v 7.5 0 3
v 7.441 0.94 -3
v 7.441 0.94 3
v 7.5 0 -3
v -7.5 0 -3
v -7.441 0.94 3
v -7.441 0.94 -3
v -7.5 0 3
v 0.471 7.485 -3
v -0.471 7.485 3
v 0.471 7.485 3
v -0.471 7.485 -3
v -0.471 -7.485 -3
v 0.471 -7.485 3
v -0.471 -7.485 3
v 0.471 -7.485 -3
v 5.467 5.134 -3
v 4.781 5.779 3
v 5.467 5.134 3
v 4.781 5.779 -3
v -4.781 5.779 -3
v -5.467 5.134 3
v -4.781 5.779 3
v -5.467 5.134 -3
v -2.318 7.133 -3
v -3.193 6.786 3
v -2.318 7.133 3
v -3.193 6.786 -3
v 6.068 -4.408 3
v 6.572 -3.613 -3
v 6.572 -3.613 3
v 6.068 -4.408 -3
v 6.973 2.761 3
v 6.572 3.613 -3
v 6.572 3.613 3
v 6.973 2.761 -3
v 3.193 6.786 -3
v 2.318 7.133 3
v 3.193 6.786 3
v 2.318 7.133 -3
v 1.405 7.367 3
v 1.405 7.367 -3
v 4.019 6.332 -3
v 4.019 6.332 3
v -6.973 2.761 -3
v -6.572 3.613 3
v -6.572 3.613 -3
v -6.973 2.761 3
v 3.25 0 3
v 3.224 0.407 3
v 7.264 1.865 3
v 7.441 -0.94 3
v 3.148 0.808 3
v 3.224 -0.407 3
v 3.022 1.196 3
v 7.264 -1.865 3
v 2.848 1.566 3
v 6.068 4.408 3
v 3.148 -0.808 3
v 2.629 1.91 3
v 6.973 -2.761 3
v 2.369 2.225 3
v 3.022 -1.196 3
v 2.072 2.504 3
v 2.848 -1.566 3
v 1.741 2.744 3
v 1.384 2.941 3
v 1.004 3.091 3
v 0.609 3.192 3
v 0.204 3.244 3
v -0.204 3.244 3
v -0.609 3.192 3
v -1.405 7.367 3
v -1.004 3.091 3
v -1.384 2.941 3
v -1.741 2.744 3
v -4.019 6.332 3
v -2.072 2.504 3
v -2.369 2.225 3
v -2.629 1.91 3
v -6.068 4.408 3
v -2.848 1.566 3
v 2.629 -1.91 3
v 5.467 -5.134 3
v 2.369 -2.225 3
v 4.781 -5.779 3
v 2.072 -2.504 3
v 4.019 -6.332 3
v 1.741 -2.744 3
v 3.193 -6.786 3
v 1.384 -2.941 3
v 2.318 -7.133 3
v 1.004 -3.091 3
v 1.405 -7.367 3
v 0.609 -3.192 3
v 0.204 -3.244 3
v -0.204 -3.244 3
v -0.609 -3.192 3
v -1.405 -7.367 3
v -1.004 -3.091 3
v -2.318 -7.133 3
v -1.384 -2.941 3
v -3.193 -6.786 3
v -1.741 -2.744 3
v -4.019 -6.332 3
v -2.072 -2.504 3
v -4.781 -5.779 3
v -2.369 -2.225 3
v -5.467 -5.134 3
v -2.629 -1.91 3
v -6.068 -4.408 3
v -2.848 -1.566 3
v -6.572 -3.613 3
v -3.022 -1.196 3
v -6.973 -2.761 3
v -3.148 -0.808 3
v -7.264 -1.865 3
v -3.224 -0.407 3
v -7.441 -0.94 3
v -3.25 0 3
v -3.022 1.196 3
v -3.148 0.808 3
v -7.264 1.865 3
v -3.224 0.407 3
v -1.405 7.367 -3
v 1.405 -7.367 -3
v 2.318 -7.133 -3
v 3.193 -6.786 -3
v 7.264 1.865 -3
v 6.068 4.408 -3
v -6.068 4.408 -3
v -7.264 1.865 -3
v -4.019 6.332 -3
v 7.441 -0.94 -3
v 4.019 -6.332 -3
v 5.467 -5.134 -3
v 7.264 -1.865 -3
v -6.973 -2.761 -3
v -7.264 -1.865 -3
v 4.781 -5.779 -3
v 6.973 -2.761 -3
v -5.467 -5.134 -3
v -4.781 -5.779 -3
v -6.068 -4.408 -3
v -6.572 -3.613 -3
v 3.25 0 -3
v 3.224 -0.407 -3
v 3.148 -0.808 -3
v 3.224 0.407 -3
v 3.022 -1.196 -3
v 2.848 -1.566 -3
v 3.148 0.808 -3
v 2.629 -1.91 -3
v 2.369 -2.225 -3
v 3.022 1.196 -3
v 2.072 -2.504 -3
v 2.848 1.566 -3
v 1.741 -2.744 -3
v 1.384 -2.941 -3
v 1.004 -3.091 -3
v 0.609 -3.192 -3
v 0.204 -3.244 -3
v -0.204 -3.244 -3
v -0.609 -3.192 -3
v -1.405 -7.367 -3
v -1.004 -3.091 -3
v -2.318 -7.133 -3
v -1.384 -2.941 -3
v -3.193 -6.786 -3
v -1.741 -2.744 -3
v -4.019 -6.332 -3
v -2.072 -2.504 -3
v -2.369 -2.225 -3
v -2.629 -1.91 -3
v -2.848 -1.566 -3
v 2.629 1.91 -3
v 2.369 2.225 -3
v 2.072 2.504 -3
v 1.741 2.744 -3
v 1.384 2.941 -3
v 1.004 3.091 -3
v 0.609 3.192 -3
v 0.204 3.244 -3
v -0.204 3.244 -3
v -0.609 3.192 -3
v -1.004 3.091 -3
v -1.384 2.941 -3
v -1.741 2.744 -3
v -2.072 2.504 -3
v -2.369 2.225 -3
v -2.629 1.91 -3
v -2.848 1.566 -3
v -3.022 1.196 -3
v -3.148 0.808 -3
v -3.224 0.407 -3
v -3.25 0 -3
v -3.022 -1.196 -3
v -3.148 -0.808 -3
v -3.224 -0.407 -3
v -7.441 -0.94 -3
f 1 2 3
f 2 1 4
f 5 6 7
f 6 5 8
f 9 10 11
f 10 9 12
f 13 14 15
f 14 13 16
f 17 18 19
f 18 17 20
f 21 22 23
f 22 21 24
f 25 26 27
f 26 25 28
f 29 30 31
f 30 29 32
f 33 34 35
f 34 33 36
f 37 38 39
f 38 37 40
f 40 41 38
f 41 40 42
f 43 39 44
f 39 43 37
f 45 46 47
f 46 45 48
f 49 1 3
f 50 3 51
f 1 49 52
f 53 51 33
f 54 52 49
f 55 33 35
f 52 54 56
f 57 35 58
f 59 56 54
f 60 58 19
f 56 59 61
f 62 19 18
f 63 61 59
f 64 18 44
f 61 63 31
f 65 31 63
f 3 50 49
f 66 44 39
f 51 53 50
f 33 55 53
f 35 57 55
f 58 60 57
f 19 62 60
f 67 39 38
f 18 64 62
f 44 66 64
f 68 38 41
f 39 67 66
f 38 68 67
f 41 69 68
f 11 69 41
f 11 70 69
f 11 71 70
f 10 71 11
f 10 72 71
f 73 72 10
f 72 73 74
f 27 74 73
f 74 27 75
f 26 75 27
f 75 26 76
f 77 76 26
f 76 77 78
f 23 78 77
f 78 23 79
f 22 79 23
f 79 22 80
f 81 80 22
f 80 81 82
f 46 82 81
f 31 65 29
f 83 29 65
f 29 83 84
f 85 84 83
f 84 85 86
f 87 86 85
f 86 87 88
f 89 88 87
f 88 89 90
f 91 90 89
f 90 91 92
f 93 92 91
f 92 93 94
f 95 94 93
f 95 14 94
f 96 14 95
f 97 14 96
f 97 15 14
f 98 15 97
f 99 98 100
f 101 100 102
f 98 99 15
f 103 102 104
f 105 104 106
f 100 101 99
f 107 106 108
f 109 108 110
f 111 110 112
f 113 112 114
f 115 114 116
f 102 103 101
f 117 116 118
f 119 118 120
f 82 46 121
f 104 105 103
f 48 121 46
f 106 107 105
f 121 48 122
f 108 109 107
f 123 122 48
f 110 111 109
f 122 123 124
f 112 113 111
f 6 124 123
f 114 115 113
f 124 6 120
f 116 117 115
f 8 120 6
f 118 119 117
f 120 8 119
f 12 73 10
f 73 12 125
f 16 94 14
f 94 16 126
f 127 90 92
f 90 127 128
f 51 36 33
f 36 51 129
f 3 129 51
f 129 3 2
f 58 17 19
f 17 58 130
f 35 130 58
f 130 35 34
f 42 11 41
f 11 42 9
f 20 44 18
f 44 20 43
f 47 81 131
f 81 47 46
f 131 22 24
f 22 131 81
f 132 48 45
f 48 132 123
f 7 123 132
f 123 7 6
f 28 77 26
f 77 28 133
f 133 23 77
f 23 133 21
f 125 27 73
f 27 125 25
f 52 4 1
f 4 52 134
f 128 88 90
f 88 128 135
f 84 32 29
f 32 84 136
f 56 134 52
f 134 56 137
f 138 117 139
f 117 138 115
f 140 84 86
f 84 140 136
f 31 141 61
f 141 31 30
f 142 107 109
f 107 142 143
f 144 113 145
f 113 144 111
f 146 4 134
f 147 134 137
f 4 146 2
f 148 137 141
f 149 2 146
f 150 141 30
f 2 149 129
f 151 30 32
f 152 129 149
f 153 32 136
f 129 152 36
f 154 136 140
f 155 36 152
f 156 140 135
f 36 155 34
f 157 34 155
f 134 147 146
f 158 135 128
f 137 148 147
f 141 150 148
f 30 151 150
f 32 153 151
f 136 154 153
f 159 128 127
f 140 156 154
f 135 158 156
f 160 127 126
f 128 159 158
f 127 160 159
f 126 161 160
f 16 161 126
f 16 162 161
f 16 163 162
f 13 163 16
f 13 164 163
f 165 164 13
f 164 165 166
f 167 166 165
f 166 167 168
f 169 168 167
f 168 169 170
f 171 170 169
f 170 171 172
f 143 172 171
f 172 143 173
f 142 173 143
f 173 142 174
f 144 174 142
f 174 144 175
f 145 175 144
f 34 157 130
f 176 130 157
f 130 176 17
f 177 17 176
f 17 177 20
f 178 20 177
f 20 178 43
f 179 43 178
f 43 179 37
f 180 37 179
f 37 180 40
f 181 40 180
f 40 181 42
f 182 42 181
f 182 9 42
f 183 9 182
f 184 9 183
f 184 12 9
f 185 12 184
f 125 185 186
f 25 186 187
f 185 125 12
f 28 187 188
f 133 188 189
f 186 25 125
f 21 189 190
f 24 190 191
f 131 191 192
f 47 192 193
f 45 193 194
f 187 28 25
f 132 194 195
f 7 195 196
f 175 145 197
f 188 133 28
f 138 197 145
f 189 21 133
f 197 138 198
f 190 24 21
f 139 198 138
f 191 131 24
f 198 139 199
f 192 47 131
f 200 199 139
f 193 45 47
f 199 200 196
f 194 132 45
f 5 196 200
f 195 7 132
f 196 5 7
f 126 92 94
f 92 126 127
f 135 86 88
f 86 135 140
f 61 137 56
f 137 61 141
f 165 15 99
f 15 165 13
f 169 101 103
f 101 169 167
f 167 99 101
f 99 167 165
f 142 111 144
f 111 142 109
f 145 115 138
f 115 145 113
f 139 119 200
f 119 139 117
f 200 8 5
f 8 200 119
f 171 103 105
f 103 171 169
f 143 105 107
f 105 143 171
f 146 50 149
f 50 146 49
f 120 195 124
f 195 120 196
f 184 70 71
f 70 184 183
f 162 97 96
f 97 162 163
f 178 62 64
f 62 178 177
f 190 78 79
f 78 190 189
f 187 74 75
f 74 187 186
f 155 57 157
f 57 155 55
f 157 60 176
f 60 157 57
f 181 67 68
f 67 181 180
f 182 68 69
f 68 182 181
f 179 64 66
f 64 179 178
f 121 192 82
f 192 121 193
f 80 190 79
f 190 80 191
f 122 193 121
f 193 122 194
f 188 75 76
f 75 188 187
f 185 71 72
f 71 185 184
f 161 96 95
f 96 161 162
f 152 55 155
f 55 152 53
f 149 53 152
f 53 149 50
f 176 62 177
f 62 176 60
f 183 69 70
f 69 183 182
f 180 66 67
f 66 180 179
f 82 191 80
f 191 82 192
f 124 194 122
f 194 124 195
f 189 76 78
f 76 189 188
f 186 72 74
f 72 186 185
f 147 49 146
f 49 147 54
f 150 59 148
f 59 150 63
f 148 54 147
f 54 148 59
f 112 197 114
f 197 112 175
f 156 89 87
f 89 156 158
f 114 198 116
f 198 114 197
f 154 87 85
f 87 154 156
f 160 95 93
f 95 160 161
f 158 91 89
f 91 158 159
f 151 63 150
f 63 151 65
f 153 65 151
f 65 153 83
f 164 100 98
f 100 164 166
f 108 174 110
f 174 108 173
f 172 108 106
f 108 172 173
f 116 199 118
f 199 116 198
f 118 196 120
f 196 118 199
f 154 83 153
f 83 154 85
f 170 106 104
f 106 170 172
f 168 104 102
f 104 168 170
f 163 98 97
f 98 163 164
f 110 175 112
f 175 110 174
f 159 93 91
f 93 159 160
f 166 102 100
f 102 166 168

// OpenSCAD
$fn = 50;


difference() {
	union() {
		translate(v = [0, 0, -3.0000000000]) {
			cylinder(h = 6, r = 7.5000000000);
		}
	}
	union() {
		translate(v = [0, 0, -100.0000000000]) {
			cylinder(h = 200, r = 3.2500000000);
		}
	}
}
